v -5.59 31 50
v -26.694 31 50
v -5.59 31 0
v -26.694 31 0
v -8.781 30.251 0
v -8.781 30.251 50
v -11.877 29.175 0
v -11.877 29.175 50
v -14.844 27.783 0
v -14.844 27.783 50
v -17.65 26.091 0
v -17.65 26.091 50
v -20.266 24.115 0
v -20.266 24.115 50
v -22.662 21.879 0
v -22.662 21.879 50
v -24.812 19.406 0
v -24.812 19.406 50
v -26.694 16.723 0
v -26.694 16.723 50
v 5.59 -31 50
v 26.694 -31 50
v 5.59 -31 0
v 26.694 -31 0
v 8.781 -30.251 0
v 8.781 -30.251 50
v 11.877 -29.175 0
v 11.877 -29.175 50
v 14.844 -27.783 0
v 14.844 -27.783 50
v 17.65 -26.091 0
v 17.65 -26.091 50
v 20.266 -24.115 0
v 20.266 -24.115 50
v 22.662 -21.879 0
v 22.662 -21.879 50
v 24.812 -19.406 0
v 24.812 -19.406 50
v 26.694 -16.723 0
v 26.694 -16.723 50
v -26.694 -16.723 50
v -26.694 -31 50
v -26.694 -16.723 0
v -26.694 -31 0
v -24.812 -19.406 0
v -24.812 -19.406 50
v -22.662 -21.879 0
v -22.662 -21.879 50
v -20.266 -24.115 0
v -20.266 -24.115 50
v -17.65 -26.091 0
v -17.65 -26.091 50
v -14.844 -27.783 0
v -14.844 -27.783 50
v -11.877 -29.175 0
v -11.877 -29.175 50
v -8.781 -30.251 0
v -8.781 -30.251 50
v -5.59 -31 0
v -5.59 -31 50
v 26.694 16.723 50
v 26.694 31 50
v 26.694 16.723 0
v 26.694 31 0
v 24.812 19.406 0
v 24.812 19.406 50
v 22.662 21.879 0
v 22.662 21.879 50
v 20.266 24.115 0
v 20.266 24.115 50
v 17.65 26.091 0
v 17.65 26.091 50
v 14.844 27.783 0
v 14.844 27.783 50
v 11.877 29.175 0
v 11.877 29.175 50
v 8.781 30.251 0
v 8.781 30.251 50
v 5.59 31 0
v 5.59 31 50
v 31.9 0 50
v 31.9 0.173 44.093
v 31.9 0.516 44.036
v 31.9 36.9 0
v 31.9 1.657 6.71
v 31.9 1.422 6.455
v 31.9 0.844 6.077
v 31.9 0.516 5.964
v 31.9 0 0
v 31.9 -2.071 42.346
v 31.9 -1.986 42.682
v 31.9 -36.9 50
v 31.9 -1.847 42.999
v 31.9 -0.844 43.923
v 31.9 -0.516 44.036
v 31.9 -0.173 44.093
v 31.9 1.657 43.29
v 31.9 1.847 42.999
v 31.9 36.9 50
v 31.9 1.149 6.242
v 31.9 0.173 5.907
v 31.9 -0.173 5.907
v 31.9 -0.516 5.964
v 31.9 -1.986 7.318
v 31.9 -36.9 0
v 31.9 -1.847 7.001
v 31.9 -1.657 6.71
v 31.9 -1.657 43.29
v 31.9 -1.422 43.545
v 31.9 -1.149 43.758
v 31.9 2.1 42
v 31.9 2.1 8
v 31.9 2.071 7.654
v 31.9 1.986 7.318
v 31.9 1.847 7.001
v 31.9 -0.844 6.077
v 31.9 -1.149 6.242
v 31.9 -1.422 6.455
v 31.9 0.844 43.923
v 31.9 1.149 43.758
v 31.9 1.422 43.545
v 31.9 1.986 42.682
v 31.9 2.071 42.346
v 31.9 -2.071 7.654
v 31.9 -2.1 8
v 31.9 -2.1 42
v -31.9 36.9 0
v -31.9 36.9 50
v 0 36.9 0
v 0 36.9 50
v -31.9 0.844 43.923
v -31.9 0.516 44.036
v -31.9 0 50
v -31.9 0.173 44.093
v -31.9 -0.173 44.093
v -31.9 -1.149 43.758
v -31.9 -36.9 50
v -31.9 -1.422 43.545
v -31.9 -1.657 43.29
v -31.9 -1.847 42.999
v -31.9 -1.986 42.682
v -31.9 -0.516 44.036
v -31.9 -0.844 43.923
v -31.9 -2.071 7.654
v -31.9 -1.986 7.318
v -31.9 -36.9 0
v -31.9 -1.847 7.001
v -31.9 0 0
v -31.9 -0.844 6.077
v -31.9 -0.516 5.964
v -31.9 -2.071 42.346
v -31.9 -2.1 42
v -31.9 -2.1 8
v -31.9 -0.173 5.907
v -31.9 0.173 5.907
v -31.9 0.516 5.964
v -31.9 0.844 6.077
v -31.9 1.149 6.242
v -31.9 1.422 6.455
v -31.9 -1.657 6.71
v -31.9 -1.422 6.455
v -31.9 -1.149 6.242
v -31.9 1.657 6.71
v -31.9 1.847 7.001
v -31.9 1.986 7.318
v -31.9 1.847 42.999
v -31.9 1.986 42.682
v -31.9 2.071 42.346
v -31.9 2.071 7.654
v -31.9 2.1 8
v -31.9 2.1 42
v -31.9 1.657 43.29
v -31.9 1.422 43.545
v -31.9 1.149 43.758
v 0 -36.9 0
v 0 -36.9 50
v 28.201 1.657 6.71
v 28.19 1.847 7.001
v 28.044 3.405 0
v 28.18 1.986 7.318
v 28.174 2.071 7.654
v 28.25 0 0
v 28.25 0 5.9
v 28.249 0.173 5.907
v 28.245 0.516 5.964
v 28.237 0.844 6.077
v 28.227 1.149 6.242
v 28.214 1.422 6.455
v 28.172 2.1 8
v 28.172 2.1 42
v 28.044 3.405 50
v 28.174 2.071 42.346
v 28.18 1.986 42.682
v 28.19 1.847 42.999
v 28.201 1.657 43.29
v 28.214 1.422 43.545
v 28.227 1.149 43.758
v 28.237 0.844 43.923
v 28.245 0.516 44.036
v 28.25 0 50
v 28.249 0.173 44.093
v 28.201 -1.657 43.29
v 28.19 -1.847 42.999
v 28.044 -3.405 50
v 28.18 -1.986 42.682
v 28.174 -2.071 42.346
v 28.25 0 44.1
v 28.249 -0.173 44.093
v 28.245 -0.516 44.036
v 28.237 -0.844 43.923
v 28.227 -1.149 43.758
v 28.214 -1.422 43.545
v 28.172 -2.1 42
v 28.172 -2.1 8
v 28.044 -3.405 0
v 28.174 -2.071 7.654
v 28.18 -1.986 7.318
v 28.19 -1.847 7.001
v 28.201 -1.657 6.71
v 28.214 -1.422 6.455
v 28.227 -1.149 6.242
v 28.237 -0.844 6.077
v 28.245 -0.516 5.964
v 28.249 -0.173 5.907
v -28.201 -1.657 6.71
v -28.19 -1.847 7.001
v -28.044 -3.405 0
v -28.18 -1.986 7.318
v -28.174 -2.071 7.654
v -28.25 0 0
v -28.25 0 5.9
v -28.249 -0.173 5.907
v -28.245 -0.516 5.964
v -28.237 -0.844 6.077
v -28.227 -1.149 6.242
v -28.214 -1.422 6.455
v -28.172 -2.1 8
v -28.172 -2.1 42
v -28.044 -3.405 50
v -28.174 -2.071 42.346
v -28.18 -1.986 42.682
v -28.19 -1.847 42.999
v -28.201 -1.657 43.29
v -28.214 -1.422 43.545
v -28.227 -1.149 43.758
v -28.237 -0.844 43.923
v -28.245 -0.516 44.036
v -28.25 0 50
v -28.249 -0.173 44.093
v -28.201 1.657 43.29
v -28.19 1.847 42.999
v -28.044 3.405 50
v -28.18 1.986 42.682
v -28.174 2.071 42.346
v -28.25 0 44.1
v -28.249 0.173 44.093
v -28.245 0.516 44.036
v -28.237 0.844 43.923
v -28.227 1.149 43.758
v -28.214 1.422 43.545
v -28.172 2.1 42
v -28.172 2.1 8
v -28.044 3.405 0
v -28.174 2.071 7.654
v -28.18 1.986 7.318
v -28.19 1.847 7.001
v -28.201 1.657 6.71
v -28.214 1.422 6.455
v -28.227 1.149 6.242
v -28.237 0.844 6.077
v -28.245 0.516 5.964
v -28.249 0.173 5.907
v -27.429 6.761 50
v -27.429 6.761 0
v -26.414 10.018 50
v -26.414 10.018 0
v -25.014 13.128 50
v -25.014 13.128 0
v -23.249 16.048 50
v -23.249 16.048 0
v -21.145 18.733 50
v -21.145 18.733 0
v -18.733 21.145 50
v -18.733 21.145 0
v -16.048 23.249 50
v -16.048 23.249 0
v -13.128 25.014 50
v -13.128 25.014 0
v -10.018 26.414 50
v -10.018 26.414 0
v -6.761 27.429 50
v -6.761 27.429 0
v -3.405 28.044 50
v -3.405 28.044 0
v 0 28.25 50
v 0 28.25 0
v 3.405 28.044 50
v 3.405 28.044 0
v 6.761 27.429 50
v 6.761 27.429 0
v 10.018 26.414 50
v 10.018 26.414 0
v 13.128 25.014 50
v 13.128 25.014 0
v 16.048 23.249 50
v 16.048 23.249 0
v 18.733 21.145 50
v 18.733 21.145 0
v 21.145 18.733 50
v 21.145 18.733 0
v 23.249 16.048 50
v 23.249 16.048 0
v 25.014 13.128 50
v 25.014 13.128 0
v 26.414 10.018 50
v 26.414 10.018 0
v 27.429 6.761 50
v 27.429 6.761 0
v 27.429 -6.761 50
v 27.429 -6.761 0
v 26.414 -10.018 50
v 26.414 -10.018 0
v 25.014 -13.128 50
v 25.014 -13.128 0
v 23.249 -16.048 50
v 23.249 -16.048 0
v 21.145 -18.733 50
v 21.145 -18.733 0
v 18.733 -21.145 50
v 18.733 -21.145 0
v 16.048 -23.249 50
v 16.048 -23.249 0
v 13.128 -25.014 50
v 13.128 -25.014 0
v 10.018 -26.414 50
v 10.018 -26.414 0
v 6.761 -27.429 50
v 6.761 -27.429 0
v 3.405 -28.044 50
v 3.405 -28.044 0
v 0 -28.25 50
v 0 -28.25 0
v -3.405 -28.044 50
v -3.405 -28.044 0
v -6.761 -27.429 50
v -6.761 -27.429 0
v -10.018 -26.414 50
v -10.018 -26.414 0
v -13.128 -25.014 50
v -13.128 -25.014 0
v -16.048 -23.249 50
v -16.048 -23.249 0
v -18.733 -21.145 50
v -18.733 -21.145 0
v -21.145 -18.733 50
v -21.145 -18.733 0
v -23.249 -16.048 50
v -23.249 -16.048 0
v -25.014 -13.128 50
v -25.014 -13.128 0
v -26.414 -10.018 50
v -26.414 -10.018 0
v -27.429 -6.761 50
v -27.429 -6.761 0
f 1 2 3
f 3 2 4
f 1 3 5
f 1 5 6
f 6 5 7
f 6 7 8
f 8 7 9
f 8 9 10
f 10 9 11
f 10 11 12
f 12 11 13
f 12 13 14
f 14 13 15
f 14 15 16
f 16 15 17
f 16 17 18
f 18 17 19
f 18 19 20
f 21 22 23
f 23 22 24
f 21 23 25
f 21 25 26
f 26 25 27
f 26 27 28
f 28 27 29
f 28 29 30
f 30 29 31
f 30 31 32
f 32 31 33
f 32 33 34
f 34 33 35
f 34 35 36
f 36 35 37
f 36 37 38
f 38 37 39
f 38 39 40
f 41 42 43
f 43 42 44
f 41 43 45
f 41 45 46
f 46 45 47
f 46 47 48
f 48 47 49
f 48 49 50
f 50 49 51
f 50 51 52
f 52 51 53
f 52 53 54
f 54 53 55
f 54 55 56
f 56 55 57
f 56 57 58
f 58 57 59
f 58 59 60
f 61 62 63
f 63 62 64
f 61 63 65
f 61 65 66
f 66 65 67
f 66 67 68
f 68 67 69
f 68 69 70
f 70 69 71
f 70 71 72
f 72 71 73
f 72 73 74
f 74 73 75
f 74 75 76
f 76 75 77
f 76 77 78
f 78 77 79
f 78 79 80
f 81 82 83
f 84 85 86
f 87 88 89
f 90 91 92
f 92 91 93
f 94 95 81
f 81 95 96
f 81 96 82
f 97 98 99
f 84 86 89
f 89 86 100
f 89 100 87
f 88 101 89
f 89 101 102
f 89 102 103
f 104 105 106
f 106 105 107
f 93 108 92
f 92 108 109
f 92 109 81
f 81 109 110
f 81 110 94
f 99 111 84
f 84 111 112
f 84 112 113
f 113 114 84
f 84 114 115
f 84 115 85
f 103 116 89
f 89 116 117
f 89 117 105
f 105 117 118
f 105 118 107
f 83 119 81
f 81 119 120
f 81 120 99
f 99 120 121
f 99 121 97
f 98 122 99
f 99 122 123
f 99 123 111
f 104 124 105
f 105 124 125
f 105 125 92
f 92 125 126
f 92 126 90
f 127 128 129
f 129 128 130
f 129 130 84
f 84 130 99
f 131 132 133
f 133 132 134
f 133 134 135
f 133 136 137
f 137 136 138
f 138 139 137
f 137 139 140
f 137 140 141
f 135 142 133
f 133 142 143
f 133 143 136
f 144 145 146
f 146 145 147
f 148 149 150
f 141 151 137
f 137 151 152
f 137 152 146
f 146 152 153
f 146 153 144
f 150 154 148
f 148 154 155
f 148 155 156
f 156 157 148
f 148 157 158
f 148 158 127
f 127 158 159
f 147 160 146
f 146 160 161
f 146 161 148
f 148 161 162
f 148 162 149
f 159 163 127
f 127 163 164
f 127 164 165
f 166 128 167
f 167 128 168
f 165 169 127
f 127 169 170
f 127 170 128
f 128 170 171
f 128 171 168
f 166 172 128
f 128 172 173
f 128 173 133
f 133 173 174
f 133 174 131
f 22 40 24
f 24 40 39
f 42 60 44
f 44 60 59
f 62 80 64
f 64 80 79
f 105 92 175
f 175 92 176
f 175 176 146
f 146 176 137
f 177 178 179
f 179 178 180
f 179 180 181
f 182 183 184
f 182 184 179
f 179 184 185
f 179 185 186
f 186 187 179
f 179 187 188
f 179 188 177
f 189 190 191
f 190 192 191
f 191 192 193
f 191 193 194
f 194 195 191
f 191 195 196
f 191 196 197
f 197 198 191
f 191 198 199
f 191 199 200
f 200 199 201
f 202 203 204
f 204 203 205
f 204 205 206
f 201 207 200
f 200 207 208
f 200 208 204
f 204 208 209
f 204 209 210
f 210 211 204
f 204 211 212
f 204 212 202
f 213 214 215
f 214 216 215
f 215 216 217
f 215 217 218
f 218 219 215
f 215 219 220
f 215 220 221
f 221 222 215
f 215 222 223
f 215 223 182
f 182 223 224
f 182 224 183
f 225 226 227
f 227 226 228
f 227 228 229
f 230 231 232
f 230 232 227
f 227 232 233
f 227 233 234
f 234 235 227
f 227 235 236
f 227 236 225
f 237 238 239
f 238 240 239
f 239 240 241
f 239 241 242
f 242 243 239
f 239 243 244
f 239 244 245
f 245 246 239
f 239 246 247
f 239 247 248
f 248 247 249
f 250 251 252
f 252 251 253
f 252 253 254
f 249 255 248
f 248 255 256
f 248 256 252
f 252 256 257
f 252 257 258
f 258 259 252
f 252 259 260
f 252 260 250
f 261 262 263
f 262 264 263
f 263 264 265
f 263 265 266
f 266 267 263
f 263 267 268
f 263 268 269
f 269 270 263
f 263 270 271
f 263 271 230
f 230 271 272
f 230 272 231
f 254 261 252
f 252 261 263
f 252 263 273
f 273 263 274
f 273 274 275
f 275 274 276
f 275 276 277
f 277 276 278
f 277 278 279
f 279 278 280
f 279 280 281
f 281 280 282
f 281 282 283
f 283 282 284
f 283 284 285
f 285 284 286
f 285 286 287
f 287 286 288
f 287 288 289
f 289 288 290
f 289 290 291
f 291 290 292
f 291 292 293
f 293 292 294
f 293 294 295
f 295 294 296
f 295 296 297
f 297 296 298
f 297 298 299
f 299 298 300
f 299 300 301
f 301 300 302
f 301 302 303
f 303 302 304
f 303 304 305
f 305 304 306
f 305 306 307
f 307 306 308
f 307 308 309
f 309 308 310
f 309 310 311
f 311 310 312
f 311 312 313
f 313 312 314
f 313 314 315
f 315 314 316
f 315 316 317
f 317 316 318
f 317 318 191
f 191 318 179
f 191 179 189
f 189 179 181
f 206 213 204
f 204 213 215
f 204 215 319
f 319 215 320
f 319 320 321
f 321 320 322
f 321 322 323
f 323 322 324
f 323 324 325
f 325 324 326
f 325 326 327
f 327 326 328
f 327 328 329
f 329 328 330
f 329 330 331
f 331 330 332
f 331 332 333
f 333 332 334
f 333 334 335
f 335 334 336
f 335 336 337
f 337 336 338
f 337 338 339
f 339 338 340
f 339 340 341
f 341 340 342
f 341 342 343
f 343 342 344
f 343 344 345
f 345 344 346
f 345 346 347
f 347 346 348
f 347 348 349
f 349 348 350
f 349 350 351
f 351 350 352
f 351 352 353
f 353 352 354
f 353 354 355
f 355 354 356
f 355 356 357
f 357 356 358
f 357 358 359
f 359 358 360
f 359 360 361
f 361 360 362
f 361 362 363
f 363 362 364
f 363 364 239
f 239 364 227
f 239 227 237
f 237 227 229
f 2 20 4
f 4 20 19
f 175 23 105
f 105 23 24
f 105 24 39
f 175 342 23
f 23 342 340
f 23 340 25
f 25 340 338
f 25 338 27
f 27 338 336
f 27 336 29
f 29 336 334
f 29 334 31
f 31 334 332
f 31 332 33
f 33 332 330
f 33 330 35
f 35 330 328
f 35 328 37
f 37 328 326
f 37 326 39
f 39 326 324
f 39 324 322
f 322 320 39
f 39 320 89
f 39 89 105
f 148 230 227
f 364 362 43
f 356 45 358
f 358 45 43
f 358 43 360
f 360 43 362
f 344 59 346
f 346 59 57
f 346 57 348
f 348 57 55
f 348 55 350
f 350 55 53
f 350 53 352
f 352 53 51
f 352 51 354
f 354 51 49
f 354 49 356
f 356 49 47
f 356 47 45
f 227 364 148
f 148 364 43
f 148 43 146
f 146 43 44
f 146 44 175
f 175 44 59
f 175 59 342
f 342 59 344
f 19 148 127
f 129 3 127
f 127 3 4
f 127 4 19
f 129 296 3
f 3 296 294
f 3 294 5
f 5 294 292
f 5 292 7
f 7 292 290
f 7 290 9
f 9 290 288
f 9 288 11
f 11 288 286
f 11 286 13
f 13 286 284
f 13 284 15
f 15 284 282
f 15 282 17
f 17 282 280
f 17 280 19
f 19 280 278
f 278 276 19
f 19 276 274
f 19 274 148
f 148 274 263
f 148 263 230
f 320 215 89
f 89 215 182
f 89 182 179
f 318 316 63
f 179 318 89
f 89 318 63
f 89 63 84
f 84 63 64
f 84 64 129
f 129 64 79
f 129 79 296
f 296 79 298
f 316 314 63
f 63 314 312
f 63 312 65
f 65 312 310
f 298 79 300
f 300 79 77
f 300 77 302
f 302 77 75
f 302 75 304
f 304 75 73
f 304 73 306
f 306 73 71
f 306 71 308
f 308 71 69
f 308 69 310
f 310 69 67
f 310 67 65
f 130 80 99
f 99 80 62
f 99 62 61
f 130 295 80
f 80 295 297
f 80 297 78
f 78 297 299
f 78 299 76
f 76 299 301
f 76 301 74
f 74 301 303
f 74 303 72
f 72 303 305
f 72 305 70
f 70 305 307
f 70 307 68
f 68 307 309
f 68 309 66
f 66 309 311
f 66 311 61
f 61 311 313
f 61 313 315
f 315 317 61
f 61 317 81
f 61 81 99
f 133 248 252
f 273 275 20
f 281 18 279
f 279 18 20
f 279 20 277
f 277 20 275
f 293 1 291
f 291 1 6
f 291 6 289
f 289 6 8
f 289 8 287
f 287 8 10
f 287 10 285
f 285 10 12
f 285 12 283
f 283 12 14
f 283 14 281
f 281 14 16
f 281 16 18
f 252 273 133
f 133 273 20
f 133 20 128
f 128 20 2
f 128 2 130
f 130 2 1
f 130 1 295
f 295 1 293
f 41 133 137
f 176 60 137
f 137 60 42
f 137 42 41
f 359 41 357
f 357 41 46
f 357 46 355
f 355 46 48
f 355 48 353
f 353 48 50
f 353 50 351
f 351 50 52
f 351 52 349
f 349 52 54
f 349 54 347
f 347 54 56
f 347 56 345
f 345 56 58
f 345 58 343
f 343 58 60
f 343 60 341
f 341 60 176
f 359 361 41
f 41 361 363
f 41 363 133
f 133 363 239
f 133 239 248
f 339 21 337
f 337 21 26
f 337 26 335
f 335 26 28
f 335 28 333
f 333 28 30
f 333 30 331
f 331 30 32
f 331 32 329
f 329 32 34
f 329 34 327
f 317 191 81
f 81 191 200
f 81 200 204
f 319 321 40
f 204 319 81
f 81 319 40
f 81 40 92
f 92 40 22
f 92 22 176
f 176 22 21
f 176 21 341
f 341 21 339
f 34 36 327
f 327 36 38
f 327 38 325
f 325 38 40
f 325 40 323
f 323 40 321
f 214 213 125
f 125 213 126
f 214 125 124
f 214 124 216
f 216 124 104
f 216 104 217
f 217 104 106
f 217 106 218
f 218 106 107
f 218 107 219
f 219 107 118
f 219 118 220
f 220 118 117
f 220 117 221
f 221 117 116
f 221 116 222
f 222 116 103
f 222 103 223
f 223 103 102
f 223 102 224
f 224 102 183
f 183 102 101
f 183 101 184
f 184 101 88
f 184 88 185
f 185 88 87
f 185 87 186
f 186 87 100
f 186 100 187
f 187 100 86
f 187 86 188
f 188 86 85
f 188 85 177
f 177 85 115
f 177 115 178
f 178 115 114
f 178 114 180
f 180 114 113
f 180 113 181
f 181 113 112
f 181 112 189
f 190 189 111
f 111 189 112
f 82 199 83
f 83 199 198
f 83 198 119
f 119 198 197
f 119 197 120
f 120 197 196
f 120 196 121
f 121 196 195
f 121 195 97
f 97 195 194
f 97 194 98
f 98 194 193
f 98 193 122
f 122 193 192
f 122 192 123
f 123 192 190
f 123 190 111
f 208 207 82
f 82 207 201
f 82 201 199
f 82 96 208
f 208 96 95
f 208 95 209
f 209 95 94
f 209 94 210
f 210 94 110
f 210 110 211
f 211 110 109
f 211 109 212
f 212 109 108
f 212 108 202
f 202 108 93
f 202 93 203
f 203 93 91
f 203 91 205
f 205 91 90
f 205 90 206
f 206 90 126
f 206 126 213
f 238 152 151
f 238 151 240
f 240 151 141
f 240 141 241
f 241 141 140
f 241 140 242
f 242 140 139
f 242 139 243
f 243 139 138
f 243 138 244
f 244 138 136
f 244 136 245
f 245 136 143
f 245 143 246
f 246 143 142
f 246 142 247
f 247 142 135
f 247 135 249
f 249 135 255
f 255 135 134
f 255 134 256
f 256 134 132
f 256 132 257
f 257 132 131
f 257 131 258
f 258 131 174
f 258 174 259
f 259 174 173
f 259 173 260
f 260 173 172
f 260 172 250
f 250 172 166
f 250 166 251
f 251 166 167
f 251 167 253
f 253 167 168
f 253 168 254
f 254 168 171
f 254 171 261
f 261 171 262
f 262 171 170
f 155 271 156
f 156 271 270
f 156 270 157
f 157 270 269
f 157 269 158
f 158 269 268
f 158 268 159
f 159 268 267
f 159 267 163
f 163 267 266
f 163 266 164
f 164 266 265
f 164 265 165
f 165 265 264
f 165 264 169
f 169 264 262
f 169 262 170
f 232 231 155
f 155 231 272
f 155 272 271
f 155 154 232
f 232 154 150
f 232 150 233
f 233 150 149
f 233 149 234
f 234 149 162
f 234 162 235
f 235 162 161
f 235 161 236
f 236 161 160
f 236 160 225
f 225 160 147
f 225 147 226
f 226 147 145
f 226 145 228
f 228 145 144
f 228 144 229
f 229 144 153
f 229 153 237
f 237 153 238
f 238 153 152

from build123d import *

# Parameters (mm, degrees)
SKETCH1_W            = 63.8
SKETCH1_H            = 73.8
SKETCH1_R            = 28.25
BOSS_EXTRUDE19_DEPTH = 10
SKETCH1_16_W         = 63.8
SKETCH1_16_H         = 73.8
SKETCH1_16_R         = 28.25
BOSS_EXTRUDE20_DEPTH = 50
CUT_EXTRUDE1_DEPTH   = 100


with BuildPart() as part:
    # Sketch1 → Boss-Extrude19 (new body)
    with BuildSketch(Plane.XY):
        Rectangle(SKETCH1_W, SKETCH1_H)
        with BuildLine():
            Line((-26.694444444, -31), (-26.694444444, -16.722937415))
            ThreePointArc((-26.694444444, -16.722937415), (-17.650289249, -26.090559393), (-5.590169944, -31))
            Line((-5.590169944, -31), (-26.694444444, -31))
        make_face(mode=Mode.SUBTRACT)
        with BuildLine():
            Line((26.694444444, -31), (5.590169944, -31))
            ThreePointArc((5.590169944, -31), (17.650289249, -26.090559393), (26.694444444, -16.722937415))
            Line((26.694444444, -16.722937415), (26.694444444, -31))
        make_face(mode=Mode.SUBTRACT)
        Circle(SKETCH1_R, mode=Mode.SUBTRACT)
        with BuildLine():
            Line((-26.694444444, 16.722937415), (-26.694444444, 31))
            Line((-26.694444444, 31), (-5.590169944, 31))
            ThreePointArc((-5.590169944, 31), (-17.650289249, 26.090559393), (-26.694444444, 16.722937415))
        make_face(mode=Mode.SUBTRACT)
        with BuildLine():
            ThreePointArc((26.694444444, 16.722937415), (17.650289249, 26.090559393), (5.590169944, 31))
            Line((5.590169944, 31), (26.694444444, 31))
            Line((26.694444444, 31), (26.694444444, 16.722937415))
        make_face(mode=Mode.SUBTRACT)
    extrude(amount=BOSS_EXTRUDE19_DEPTH)

    # Sketch1<16> → Boss-Extrude20 (add)
    with BuildSketch(Plane.XY):
        Rectangle(SKETCH1_16_W, SKETCH1_16_H)
        Circle(SKETCH1_16_R, mode=Mode.SUBTRACT)
        with BuildLine():
            Line((-26.694444444, -16.722937415), (-26.694444444, -31))
            Line((-26.694444444, -31), (-5.590169944, -31))
            ThreePointArc((-5.590169944, -31), (-17.650289249, -26.090559393), (-26.694444444, -16.722937415))
        make_face(mode=Mode.SUBTRACT)
        with BuildLine():
            Line((5.590169944, -31), (26.694444444, -31))
            Line((26.694444444, -31), (26.694444444, -16.722937415))
            ThreePointArc((26.694444444, -16.722937415), (17.650289249, -26.090559393), (5.590169944, -31))
        make_face(mode=Mode.SUBTRACT)
        with BuildLine():
            Line((5.590169944, 31), (26.694444444, 31))
            Line((26.694444444, 31), (26.694444444, 16.722937415))
            ThreePointArc((26.694444444, 16.722937415), (17.650289249, 26.090559393), (5.590169944, 31))
        make_face(mode=Mode.SUBTRACT)
        with BuildLine():
            Line((-26.694444444, 31), (-5.590169944, 31))
            ThreePointArc((-5.590169944, 31), (-17.650289249, 26.090559393), (-26.694444444, 16.722937415))
            Line((-26.694444444, 16.722937415), (-26.694444444, 31))
        make_face(mode=Mode.SUBTRACT)
    extrude(amount=BOSS_EXTRUDE20_DEPTH)

    # Sketch7 → Cut-Extrude1 (cut)
    with BuildSketch(Plane(origin=(40, 0, 0), x_dir=(0, 0, -1), z_dir=(1, 0, 0))):
        with BuildLine():
            Line((-42, 2.1), (-8, 2.1))
            ThreePointArc((-8, 2.1), (-5.9, 0), (-8, -2.1))
            Line((-8, -2.1), (-42, -2.1))
            ThreePointArc((-42, -2.1), (-44.1, 0), (-42, 2.1))
        make_face()
    extrude(amount=-CUT_EXTRUDE1_DEPTH, mode=Mode.SUBTRACT)


solid = part.part
